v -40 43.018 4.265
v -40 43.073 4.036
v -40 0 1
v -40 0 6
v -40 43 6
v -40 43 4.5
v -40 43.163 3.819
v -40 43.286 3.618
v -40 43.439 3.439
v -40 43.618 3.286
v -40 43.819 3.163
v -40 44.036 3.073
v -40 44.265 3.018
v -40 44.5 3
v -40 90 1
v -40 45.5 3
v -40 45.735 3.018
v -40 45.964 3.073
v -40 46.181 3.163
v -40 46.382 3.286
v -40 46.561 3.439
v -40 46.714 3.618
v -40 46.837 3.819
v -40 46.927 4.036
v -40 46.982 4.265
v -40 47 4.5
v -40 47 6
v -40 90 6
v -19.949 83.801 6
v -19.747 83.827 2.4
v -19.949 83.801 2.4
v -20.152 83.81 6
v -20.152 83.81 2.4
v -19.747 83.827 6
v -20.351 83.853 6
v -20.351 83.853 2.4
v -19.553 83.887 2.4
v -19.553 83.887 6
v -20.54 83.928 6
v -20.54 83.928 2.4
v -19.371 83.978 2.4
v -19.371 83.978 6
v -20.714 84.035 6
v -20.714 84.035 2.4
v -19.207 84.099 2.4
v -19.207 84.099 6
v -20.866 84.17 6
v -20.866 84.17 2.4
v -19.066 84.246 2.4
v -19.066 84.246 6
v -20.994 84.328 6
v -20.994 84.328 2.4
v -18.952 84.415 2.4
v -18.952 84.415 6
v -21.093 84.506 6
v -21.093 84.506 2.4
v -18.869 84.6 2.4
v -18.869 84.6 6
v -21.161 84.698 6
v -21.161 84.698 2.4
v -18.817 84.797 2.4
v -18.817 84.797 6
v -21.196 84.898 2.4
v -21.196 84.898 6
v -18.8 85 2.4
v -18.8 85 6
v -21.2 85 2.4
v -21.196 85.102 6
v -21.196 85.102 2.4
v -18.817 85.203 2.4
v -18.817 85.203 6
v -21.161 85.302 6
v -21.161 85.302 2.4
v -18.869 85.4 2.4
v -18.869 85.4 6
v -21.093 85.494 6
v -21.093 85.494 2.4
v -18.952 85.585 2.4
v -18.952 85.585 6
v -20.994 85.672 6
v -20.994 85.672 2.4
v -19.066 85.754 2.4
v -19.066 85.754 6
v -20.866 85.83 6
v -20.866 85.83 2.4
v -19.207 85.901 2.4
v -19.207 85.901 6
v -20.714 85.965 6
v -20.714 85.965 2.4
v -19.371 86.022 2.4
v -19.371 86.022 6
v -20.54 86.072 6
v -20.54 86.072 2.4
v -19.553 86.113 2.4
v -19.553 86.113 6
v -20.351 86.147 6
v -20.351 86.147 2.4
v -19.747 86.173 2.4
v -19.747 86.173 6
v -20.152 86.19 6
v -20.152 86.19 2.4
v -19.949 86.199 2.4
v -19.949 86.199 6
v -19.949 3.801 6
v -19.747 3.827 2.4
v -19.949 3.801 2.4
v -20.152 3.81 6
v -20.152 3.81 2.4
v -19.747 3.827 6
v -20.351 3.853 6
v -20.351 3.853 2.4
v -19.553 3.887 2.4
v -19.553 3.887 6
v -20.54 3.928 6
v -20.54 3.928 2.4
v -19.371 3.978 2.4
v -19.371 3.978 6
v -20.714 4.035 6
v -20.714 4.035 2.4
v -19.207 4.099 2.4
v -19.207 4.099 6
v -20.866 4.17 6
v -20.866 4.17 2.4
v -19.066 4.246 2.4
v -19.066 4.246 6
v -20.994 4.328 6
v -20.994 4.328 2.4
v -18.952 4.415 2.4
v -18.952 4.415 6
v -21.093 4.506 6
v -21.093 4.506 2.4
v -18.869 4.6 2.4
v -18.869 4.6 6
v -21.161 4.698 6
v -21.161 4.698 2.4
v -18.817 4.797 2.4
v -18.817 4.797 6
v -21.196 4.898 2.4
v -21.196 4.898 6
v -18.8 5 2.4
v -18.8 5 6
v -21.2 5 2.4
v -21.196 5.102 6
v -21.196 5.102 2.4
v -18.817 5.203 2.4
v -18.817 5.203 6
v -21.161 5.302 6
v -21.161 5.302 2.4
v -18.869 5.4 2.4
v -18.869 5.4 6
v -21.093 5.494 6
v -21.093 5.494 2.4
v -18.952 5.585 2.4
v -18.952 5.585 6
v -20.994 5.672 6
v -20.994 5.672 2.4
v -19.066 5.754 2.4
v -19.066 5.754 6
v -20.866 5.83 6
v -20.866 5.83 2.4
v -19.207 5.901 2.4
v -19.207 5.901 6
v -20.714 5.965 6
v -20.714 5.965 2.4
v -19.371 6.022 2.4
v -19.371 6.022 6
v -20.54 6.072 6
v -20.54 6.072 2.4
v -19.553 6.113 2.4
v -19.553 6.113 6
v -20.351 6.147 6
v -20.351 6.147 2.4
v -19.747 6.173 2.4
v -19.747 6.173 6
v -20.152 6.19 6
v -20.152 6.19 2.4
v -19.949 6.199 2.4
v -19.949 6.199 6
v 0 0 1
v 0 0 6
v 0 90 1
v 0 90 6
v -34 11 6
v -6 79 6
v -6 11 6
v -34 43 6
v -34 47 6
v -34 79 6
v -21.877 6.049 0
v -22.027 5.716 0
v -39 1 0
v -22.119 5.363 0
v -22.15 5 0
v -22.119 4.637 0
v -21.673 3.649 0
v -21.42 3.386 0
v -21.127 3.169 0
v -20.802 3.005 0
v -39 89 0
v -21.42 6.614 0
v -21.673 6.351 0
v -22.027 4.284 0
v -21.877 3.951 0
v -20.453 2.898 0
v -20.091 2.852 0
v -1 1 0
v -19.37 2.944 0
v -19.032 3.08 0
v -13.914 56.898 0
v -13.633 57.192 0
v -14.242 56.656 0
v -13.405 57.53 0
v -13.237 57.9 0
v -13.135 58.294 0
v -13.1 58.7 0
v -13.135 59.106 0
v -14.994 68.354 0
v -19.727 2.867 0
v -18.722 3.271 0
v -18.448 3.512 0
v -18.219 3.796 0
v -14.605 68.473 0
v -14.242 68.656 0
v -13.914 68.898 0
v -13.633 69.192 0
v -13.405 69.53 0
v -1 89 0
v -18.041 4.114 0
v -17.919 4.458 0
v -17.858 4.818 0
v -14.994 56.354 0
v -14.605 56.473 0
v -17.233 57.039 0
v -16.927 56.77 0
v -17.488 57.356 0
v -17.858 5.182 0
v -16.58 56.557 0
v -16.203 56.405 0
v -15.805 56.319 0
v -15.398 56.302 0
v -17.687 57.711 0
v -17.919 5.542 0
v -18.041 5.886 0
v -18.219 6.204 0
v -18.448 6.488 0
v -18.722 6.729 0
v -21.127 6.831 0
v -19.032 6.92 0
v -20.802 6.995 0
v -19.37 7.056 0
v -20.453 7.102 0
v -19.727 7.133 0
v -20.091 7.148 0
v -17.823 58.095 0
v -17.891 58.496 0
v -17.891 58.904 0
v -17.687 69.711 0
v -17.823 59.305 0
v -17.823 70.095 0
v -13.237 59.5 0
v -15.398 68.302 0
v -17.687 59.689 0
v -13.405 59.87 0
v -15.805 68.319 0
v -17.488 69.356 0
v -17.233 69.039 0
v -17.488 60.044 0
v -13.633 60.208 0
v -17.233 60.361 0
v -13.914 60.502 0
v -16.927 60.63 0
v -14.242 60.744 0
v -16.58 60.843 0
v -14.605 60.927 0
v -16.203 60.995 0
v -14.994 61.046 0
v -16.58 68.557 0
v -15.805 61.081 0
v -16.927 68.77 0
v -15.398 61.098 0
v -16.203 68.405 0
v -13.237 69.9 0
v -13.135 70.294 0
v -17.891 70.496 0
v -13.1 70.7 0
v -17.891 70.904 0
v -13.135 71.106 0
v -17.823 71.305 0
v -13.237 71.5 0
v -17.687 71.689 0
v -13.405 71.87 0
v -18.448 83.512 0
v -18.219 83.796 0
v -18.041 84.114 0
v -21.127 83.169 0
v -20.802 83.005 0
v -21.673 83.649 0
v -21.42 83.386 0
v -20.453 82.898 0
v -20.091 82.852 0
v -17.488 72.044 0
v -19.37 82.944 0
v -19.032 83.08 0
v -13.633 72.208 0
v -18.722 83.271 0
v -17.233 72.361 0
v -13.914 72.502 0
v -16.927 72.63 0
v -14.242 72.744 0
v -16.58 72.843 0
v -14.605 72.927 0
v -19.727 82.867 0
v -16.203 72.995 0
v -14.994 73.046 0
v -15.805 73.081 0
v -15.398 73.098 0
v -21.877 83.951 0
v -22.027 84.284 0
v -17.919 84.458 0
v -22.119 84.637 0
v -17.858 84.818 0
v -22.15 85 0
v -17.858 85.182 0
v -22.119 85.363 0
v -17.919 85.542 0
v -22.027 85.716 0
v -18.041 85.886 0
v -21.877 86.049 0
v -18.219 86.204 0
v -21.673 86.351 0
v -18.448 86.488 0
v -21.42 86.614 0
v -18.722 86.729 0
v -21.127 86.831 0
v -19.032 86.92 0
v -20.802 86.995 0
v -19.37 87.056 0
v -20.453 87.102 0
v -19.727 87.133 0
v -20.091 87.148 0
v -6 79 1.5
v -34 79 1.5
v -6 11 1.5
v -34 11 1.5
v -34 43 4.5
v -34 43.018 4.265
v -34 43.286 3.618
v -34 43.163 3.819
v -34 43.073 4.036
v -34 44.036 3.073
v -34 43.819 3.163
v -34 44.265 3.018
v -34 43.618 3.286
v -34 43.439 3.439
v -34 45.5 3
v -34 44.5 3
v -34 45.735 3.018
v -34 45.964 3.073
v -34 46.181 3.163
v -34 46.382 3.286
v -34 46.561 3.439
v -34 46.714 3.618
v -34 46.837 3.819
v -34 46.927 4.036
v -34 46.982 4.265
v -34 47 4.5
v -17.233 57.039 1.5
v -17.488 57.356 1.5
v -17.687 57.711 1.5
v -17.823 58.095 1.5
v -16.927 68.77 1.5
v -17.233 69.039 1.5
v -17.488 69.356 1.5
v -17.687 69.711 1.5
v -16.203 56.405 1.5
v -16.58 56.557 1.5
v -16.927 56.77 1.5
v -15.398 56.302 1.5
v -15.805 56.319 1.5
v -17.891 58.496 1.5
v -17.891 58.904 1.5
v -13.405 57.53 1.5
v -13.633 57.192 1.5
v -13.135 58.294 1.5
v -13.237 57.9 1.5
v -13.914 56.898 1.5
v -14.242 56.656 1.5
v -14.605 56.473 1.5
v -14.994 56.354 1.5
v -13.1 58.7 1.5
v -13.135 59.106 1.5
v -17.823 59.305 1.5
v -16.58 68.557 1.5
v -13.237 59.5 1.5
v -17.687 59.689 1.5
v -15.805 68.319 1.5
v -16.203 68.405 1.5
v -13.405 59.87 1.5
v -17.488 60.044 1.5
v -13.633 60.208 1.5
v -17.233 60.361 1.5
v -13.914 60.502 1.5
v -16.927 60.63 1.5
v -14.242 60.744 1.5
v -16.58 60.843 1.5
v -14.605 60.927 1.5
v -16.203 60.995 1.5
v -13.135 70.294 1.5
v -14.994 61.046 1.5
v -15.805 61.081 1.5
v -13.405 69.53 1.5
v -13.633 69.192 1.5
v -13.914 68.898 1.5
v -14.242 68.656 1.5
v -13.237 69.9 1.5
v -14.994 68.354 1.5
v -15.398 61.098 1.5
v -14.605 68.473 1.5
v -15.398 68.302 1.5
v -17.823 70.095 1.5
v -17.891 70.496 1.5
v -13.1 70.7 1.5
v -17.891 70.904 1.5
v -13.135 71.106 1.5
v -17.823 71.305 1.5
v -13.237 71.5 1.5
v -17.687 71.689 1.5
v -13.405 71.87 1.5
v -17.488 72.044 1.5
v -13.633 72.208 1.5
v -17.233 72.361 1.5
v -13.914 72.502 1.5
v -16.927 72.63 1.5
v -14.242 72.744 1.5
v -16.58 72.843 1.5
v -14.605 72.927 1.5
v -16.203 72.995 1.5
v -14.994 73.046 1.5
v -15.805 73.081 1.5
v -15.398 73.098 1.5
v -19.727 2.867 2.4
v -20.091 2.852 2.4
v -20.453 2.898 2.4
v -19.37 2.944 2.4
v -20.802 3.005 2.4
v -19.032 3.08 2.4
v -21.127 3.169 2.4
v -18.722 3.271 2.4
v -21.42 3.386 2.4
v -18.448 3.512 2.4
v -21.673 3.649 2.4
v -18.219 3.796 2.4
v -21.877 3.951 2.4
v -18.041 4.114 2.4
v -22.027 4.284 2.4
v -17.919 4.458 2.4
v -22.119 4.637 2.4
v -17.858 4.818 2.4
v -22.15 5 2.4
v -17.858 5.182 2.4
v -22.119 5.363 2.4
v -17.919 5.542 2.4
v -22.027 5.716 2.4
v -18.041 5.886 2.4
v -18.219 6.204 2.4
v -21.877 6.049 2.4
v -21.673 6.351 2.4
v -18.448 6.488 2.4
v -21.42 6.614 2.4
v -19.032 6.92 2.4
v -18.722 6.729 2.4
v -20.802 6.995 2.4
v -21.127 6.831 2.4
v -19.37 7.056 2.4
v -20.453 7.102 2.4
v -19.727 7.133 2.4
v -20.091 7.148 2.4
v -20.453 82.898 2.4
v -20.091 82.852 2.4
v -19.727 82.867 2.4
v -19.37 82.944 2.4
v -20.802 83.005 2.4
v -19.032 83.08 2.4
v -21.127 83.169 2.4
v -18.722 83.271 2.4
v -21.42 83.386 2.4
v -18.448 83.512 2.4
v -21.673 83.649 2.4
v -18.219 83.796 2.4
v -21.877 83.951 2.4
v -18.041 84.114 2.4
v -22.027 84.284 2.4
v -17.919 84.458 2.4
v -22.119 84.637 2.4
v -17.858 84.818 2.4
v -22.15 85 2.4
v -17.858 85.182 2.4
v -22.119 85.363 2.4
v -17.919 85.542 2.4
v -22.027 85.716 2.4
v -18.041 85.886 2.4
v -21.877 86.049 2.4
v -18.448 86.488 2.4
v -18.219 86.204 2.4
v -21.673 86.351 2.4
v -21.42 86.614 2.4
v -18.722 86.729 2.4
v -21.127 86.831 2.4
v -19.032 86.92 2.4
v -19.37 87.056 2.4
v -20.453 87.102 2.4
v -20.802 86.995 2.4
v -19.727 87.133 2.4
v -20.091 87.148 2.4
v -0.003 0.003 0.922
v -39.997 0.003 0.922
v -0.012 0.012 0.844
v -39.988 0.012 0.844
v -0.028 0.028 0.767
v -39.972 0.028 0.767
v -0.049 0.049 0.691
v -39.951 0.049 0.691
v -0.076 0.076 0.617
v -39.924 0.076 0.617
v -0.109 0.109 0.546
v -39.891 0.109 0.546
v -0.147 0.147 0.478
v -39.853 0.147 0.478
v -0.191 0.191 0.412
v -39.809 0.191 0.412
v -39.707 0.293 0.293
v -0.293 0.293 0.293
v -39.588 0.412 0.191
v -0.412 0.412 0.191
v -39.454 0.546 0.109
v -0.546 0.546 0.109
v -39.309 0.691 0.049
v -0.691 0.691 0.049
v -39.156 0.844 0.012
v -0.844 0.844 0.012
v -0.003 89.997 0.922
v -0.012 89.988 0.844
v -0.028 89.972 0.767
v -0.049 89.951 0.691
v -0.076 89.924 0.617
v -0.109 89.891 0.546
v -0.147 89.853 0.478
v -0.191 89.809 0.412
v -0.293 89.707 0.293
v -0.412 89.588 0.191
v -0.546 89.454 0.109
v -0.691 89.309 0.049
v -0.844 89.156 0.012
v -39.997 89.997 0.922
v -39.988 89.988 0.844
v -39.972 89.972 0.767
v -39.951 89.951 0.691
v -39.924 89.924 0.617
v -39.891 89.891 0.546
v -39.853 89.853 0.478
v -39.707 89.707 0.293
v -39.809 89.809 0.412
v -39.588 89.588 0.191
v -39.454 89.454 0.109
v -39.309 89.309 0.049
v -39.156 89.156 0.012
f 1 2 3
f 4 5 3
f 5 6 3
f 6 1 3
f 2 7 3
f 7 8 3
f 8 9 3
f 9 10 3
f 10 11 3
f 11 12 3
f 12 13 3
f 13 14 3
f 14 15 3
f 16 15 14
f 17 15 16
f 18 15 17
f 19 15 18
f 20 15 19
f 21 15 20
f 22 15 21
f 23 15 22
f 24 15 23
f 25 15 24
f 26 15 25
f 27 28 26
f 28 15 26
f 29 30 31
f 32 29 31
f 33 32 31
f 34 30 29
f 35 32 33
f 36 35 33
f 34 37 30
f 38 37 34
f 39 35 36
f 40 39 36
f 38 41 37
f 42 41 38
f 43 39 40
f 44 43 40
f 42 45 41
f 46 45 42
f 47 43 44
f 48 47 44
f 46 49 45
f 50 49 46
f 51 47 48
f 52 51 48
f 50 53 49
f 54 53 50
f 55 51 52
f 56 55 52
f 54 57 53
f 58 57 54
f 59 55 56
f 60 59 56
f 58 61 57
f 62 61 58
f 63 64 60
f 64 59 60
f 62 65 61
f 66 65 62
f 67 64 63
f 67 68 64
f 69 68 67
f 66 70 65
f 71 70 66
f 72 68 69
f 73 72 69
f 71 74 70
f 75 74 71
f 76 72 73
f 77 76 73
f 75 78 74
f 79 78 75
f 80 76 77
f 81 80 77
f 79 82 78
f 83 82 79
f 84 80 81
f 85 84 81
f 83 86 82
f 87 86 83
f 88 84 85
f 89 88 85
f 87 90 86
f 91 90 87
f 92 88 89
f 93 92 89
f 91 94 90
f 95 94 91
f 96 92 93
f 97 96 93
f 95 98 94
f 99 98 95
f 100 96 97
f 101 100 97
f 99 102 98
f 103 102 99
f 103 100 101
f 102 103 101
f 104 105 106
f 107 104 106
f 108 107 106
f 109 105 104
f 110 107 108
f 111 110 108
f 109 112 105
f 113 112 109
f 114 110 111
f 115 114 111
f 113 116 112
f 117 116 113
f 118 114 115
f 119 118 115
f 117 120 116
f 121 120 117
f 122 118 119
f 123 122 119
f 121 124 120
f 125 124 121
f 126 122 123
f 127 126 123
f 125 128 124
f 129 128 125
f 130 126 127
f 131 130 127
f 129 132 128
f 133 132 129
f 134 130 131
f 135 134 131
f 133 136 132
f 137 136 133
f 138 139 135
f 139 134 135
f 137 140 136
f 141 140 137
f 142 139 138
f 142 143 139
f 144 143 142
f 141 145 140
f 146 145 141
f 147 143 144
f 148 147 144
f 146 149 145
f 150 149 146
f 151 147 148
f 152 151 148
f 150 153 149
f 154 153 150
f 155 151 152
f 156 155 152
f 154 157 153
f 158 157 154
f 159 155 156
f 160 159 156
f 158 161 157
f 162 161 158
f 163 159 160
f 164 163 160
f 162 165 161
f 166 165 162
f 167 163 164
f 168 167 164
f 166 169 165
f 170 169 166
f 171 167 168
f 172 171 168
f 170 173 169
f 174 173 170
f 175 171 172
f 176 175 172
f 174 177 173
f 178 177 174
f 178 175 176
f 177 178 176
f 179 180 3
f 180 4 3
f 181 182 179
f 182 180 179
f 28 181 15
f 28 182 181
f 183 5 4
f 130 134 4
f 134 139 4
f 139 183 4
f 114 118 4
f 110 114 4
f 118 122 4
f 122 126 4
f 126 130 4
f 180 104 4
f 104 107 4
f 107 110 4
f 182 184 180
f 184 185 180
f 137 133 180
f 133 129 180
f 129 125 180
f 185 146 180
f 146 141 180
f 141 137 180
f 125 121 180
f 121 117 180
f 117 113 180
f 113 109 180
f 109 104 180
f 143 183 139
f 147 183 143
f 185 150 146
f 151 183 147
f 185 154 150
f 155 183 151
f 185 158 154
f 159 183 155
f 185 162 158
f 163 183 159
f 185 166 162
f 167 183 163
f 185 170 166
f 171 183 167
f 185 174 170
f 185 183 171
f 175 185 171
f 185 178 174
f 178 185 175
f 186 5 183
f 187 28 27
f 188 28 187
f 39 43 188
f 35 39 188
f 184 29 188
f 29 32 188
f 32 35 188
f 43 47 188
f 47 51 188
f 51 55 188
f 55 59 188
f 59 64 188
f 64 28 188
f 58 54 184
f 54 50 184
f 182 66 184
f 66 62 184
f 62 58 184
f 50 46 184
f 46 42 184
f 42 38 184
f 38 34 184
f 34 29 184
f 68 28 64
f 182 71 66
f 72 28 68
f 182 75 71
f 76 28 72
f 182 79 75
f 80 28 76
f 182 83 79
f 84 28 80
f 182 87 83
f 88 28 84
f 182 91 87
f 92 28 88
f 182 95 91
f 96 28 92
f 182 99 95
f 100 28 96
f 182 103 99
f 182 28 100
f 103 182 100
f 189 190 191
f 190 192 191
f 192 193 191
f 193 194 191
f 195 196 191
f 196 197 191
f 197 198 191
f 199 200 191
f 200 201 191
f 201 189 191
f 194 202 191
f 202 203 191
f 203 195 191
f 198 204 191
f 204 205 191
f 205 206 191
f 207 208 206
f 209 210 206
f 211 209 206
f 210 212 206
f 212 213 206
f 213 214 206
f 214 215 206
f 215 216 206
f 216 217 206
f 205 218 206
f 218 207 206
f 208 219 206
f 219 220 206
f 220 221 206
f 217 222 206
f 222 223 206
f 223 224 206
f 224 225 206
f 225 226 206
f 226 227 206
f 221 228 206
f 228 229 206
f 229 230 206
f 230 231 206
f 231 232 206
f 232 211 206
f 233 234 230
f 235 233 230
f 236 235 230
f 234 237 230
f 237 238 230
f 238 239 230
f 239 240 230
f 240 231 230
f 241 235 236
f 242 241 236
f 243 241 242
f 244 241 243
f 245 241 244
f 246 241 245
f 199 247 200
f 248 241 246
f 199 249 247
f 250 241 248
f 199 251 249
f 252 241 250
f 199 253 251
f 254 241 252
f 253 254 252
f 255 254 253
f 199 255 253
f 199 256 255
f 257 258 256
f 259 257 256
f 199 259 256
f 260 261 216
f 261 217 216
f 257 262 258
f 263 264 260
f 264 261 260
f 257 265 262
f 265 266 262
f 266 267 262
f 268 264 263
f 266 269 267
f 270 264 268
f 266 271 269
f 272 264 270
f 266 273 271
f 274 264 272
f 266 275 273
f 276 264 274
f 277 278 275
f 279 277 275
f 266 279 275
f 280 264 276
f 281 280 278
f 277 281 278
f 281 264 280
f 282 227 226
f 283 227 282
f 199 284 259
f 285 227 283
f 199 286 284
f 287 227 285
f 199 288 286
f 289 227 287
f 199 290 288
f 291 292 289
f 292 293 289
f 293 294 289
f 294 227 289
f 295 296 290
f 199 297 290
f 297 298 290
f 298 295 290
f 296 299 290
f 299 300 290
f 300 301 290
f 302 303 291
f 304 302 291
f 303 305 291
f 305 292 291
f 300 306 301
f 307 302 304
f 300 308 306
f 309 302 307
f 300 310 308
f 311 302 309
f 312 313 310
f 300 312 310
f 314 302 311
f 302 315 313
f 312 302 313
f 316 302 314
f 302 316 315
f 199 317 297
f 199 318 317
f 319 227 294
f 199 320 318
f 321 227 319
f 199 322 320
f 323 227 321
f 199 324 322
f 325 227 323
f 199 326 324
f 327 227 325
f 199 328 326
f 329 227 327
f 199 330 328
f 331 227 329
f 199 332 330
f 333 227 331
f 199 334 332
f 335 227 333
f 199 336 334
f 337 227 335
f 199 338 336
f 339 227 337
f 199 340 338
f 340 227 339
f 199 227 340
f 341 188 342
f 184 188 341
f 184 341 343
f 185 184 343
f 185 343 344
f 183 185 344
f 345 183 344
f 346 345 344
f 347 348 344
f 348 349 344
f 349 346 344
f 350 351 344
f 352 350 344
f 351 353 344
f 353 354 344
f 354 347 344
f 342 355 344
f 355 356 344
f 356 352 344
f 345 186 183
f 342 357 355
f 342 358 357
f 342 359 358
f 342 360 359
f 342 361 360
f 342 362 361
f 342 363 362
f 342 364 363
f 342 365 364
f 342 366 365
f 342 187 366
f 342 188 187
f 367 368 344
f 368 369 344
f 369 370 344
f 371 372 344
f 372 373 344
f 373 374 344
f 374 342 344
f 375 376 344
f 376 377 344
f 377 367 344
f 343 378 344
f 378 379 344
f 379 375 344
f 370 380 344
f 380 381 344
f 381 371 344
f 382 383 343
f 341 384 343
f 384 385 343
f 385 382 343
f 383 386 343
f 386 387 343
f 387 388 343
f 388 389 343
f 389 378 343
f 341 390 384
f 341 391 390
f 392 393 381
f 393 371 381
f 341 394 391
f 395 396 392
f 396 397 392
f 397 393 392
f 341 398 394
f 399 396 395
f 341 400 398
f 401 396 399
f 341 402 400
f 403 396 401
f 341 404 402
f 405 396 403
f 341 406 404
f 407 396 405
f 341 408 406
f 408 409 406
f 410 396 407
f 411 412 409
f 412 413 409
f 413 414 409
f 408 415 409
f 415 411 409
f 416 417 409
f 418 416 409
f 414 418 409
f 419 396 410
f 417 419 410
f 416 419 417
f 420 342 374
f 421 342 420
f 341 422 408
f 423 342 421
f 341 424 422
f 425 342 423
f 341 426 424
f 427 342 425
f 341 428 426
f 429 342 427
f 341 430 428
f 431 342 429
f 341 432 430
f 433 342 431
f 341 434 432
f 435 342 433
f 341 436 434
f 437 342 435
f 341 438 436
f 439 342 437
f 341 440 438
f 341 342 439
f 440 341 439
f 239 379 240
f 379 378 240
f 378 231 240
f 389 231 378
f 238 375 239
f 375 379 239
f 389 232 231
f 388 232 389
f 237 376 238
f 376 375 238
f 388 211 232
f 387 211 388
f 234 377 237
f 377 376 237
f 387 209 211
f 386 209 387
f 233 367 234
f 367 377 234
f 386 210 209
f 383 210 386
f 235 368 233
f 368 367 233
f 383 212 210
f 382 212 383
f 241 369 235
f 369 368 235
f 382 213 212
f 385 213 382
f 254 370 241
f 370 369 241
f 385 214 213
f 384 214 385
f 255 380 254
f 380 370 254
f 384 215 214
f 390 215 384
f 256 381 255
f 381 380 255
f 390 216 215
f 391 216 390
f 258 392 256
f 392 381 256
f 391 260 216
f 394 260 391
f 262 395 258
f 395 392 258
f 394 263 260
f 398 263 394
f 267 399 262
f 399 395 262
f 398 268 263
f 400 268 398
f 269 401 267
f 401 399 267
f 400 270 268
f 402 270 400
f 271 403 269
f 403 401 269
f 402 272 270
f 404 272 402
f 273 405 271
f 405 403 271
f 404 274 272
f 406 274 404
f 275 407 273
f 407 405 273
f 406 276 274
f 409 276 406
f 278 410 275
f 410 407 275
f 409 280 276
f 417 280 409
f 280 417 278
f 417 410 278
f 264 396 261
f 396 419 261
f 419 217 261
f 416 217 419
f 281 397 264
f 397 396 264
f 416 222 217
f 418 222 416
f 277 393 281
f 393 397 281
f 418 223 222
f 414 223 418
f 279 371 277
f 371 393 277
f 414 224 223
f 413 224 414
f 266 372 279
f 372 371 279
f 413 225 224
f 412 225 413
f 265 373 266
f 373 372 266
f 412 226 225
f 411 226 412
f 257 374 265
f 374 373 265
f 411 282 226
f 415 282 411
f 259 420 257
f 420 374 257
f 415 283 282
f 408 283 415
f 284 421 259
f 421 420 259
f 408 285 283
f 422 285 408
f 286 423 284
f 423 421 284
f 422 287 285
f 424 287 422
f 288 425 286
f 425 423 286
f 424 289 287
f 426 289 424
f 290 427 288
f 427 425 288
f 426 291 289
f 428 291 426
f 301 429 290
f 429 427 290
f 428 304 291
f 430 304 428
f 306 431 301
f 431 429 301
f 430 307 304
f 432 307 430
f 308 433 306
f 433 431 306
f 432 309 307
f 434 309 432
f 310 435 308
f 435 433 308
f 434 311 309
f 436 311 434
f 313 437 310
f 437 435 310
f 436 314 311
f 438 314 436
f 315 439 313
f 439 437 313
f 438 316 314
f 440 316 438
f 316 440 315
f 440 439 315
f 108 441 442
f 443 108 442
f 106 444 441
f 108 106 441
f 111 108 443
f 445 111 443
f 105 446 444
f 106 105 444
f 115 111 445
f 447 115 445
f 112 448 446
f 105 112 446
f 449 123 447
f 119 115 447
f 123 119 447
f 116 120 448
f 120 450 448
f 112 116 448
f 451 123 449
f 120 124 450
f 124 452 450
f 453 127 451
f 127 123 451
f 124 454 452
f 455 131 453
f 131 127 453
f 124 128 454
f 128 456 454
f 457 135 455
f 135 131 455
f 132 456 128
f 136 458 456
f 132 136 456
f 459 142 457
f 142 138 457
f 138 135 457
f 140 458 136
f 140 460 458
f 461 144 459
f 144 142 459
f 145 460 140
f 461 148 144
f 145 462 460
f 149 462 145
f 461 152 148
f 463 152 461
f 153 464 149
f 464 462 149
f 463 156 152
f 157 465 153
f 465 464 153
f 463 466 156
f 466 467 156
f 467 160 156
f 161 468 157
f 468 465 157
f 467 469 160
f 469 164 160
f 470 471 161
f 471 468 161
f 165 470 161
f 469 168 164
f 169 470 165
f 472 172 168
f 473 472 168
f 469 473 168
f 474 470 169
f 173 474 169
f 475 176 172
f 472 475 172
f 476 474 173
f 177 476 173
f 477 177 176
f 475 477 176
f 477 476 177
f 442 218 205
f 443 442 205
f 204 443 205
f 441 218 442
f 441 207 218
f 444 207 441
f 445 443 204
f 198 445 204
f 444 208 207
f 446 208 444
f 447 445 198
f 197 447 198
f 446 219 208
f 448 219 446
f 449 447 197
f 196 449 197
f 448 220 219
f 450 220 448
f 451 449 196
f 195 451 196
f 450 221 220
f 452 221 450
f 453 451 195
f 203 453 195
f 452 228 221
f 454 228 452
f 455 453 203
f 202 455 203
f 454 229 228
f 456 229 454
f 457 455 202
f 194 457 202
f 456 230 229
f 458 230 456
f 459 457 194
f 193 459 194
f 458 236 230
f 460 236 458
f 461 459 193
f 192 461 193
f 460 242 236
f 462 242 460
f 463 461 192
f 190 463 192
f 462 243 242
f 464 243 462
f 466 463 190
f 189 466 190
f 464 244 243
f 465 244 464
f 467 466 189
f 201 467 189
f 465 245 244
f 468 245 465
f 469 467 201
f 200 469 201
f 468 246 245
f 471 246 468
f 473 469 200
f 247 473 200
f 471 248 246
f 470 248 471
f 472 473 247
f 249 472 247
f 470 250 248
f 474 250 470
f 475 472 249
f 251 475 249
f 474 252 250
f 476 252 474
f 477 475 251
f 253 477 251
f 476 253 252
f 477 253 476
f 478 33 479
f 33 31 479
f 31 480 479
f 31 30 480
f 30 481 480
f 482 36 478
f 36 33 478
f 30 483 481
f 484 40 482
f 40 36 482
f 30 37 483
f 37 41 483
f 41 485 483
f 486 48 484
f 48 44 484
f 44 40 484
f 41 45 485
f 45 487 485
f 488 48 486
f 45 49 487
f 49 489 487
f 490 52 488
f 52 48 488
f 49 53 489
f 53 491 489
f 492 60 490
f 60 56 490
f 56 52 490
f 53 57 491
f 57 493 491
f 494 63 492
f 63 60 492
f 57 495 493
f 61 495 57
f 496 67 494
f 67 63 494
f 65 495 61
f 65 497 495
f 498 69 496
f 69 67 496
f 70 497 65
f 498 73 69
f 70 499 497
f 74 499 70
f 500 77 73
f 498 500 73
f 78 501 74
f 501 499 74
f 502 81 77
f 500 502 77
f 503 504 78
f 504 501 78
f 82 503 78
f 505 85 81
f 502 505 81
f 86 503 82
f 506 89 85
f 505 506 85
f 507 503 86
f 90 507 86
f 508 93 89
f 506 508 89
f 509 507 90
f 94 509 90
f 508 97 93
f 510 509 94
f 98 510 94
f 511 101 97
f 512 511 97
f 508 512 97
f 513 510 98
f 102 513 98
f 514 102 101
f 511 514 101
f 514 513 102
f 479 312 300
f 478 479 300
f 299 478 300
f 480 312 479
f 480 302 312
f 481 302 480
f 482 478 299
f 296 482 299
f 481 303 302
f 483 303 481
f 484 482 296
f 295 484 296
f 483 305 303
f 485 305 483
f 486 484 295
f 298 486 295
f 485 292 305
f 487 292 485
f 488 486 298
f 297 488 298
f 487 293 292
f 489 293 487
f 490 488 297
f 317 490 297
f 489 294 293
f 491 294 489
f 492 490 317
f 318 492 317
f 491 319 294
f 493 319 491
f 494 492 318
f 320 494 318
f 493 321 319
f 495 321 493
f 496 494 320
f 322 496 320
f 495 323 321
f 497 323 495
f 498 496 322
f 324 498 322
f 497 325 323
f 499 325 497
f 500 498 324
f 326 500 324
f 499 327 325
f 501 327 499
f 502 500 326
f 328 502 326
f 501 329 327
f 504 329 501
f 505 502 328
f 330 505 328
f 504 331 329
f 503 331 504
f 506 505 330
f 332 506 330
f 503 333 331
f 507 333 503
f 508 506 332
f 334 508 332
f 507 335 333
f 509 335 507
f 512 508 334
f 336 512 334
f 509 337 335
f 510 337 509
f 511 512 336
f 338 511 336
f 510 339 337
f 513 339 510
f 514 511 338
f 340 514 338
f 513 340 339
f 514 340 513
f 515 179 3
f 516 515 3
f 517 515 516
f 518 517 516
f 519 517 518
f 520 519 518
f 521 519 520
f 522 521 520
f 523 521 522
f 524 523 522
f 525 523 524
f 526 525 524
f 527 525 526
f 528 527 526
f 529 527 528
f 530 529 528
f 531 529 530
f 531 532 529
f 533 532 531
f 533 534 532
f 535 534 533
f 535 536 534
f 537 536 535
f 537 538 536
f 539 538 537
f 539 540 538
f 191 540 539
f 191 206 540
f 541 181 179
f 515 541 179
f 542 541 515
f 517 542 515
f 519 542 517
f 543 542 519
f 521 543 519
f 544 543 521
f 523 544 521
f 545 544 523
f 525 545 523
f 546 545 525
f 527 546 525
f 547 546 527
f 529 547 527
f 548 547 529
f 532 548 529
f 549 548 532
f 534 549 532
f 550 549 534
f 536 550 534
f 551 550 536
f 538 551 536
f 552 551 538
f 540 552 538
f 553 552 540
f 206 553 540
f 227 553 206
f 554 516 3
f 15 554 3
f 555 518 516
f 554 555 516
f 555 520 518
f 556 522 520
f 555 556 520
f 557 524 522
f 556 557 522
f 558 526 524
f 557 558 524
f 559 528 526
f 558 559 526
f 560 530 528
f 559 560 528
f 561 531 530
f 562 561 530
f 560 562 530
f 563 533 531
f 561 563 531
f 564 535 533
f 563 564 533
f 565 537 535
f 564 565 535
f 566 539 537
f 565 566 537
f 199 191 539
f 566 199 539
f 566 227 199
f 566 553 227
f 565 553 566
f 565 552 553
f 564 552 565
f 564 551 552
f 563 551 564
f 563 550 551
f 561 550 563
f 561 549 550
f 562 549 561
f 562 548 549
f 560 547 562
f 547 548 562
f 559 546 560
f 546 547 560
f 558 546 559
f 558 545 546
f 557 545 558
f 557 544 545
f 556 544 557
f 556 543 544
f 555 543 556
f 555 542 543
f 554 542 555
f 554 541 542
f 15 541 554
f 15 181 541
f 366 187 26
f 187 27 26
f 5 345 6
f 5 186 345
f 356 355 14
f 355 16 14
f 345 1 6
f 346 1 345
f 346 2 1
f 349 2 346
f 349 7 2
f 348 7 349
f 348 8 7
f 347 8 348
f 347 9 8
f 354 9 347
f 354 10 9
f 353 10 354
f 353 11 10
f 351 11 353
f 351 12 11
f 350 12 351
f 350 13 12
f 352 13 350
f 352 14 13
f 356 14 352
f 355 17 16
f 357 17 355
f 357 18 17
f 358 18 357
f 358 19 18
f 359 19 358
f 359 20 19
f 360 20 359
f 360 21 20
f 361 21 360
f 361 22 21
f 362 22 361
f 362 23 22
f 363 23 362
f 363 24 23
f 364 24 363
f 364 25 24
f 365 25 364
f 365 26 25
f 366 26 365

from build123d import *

# Parameters (mm, degrees)
SKETCH1_W           = 90
SKETCH1_H           = 40
BOSS_EXTRUDE1_DEPTH = 6
SKETCH2_W           = 28
SKETCH2_H           = 68
CUT_EXTRUDE1_DEPTH  = 4.5
SKETCH6_R           = 1.2
CUT_EXTRUDE5_DEPTH  = 99.671171068
SKETCH7_R           = 1.2
CUT_EXTRUDE6_DEPTH  = 99.671171068
SKETCH8_R           = 2.4
CUT_EXTRUDE7_DEPTH  = 99.591328219
SKETCH9_R           = 2.15
CUT_EXTRUDE8_DEPTH  = 2.4
FILLET3_R           = 1
SKETCH10_W          = 4
SKETCH10_H          = 3
CUT_EXTRUDE9_DEPTH  = 10
FILLET4_R           = 1.5


with BuildPart() as part:
    # Sketch1 → Boss-Extrude1 (new body)
    with BuildSketch(Plane(origin=(0, 0, 0), x_dir=(0, 1, 0), z_dir=(0, 0, 1))):
        with Locations((45, 20)):
            Rectangle(SKETCH1_W, SKETCH1_H)
    extrude(amount=BOSS_EXTRUDE1_DEPTH)

    # Sketch2 → Cut-Extrude1 (cut)
    with BuildSketch(Plane.XY.offset(6)):
        with Locations((-20, 45)):
            Rectangle(SKETCH2_W, SKETCH2_H)
    extrude(amount=-CUT_EXTRUDE1_DEPTH, mode=Mode.SUBTRACT)

    # Sketch6 → Cut-Extrude5 (cut, through all)
    with BuildSketch(Plane.XY.offset(6)):
        with Locations((-20, 85)):
            Circle(SKETCH6_R)
    extrude(amount=-CUT_EXTRUDE5_DEPTH, mode=Mode.SUBTRACT)

    # Sketch7 → Cut-Extrude6 (cut, through all)
    with BuildSketch(Plane.XY.offset(6)):
        with Locations((-20, 5)):
            Circle(SKETCH7_R)
    extrude(amount=-CUT_EXTRUDE6_DEPTH, mode=Mode.SUBTRACT)

    # Sketch8 → Cut-Extrude7 (cut, through all)
    with BuildSketch(Plane.XY.offset(1.5)):
        with Locations((-15.5, 70.7)):
            Circle(SKETCH8_R)
        with Locations((-15.5, 58.7)):
            Circle(SKETCH8_R)
    extrude(amount=-CUT_EXTRUDE7_DEPTH, mode=Mode.SUBTRACT)

    # Sketch9 → Cut-Extrude8 (cut)
    with BuildSketch(Plane(origin=(0, 0, 0), x_dir=(1, 0, 0), z_dir=(0, 0, -1))):
        with Locations(Location((-20, -5, 0), (0, 0, 180))):
            Circle(SKETCH9_R)
        with Locations(Location((-20, -85, 0), (0, 0, 180))):
            Circle(SKETCH9_R)
    extrude(amount=-CUT_EXTRUDE8_DEPTH, mode=Mode.SUBTRACT)

    # Fillet3
    fillet3_edges = [part.edges().sort_by_distance(p)[0] for p in [
        (-40, 45, 0),
        (-20, 90, 0),
        (0, 45, 0),
        (-20, 0, 0),
    ]]
    fillet(fillet3_edges, radius=FILLET3_R)

    # Sketch10 → Cut-Extrude9 (cut)
    with BuildSketch(Plane(origin=(-40, 0, 0), x_dir=(0, -1, 0), z_dir=(-1, 0, 0))):
        with Locations((-45, 4.5)):
            Rectangle(SKETCH10_W, SKETCH10_H)
    extrude(amount=-CUT_EXTRUDE9_DEPTH, mode=Mode.SUBTRACT)

    # Fillet4
    fillet4_edges = [part.edges().sort_by_distance(p)[0] for p in [
        (-37, 47, 3),
        (-37, 43, 3),
    ]]
    fillet(fillet4_edges, radius=FILLET4_R)


solid = part.part
